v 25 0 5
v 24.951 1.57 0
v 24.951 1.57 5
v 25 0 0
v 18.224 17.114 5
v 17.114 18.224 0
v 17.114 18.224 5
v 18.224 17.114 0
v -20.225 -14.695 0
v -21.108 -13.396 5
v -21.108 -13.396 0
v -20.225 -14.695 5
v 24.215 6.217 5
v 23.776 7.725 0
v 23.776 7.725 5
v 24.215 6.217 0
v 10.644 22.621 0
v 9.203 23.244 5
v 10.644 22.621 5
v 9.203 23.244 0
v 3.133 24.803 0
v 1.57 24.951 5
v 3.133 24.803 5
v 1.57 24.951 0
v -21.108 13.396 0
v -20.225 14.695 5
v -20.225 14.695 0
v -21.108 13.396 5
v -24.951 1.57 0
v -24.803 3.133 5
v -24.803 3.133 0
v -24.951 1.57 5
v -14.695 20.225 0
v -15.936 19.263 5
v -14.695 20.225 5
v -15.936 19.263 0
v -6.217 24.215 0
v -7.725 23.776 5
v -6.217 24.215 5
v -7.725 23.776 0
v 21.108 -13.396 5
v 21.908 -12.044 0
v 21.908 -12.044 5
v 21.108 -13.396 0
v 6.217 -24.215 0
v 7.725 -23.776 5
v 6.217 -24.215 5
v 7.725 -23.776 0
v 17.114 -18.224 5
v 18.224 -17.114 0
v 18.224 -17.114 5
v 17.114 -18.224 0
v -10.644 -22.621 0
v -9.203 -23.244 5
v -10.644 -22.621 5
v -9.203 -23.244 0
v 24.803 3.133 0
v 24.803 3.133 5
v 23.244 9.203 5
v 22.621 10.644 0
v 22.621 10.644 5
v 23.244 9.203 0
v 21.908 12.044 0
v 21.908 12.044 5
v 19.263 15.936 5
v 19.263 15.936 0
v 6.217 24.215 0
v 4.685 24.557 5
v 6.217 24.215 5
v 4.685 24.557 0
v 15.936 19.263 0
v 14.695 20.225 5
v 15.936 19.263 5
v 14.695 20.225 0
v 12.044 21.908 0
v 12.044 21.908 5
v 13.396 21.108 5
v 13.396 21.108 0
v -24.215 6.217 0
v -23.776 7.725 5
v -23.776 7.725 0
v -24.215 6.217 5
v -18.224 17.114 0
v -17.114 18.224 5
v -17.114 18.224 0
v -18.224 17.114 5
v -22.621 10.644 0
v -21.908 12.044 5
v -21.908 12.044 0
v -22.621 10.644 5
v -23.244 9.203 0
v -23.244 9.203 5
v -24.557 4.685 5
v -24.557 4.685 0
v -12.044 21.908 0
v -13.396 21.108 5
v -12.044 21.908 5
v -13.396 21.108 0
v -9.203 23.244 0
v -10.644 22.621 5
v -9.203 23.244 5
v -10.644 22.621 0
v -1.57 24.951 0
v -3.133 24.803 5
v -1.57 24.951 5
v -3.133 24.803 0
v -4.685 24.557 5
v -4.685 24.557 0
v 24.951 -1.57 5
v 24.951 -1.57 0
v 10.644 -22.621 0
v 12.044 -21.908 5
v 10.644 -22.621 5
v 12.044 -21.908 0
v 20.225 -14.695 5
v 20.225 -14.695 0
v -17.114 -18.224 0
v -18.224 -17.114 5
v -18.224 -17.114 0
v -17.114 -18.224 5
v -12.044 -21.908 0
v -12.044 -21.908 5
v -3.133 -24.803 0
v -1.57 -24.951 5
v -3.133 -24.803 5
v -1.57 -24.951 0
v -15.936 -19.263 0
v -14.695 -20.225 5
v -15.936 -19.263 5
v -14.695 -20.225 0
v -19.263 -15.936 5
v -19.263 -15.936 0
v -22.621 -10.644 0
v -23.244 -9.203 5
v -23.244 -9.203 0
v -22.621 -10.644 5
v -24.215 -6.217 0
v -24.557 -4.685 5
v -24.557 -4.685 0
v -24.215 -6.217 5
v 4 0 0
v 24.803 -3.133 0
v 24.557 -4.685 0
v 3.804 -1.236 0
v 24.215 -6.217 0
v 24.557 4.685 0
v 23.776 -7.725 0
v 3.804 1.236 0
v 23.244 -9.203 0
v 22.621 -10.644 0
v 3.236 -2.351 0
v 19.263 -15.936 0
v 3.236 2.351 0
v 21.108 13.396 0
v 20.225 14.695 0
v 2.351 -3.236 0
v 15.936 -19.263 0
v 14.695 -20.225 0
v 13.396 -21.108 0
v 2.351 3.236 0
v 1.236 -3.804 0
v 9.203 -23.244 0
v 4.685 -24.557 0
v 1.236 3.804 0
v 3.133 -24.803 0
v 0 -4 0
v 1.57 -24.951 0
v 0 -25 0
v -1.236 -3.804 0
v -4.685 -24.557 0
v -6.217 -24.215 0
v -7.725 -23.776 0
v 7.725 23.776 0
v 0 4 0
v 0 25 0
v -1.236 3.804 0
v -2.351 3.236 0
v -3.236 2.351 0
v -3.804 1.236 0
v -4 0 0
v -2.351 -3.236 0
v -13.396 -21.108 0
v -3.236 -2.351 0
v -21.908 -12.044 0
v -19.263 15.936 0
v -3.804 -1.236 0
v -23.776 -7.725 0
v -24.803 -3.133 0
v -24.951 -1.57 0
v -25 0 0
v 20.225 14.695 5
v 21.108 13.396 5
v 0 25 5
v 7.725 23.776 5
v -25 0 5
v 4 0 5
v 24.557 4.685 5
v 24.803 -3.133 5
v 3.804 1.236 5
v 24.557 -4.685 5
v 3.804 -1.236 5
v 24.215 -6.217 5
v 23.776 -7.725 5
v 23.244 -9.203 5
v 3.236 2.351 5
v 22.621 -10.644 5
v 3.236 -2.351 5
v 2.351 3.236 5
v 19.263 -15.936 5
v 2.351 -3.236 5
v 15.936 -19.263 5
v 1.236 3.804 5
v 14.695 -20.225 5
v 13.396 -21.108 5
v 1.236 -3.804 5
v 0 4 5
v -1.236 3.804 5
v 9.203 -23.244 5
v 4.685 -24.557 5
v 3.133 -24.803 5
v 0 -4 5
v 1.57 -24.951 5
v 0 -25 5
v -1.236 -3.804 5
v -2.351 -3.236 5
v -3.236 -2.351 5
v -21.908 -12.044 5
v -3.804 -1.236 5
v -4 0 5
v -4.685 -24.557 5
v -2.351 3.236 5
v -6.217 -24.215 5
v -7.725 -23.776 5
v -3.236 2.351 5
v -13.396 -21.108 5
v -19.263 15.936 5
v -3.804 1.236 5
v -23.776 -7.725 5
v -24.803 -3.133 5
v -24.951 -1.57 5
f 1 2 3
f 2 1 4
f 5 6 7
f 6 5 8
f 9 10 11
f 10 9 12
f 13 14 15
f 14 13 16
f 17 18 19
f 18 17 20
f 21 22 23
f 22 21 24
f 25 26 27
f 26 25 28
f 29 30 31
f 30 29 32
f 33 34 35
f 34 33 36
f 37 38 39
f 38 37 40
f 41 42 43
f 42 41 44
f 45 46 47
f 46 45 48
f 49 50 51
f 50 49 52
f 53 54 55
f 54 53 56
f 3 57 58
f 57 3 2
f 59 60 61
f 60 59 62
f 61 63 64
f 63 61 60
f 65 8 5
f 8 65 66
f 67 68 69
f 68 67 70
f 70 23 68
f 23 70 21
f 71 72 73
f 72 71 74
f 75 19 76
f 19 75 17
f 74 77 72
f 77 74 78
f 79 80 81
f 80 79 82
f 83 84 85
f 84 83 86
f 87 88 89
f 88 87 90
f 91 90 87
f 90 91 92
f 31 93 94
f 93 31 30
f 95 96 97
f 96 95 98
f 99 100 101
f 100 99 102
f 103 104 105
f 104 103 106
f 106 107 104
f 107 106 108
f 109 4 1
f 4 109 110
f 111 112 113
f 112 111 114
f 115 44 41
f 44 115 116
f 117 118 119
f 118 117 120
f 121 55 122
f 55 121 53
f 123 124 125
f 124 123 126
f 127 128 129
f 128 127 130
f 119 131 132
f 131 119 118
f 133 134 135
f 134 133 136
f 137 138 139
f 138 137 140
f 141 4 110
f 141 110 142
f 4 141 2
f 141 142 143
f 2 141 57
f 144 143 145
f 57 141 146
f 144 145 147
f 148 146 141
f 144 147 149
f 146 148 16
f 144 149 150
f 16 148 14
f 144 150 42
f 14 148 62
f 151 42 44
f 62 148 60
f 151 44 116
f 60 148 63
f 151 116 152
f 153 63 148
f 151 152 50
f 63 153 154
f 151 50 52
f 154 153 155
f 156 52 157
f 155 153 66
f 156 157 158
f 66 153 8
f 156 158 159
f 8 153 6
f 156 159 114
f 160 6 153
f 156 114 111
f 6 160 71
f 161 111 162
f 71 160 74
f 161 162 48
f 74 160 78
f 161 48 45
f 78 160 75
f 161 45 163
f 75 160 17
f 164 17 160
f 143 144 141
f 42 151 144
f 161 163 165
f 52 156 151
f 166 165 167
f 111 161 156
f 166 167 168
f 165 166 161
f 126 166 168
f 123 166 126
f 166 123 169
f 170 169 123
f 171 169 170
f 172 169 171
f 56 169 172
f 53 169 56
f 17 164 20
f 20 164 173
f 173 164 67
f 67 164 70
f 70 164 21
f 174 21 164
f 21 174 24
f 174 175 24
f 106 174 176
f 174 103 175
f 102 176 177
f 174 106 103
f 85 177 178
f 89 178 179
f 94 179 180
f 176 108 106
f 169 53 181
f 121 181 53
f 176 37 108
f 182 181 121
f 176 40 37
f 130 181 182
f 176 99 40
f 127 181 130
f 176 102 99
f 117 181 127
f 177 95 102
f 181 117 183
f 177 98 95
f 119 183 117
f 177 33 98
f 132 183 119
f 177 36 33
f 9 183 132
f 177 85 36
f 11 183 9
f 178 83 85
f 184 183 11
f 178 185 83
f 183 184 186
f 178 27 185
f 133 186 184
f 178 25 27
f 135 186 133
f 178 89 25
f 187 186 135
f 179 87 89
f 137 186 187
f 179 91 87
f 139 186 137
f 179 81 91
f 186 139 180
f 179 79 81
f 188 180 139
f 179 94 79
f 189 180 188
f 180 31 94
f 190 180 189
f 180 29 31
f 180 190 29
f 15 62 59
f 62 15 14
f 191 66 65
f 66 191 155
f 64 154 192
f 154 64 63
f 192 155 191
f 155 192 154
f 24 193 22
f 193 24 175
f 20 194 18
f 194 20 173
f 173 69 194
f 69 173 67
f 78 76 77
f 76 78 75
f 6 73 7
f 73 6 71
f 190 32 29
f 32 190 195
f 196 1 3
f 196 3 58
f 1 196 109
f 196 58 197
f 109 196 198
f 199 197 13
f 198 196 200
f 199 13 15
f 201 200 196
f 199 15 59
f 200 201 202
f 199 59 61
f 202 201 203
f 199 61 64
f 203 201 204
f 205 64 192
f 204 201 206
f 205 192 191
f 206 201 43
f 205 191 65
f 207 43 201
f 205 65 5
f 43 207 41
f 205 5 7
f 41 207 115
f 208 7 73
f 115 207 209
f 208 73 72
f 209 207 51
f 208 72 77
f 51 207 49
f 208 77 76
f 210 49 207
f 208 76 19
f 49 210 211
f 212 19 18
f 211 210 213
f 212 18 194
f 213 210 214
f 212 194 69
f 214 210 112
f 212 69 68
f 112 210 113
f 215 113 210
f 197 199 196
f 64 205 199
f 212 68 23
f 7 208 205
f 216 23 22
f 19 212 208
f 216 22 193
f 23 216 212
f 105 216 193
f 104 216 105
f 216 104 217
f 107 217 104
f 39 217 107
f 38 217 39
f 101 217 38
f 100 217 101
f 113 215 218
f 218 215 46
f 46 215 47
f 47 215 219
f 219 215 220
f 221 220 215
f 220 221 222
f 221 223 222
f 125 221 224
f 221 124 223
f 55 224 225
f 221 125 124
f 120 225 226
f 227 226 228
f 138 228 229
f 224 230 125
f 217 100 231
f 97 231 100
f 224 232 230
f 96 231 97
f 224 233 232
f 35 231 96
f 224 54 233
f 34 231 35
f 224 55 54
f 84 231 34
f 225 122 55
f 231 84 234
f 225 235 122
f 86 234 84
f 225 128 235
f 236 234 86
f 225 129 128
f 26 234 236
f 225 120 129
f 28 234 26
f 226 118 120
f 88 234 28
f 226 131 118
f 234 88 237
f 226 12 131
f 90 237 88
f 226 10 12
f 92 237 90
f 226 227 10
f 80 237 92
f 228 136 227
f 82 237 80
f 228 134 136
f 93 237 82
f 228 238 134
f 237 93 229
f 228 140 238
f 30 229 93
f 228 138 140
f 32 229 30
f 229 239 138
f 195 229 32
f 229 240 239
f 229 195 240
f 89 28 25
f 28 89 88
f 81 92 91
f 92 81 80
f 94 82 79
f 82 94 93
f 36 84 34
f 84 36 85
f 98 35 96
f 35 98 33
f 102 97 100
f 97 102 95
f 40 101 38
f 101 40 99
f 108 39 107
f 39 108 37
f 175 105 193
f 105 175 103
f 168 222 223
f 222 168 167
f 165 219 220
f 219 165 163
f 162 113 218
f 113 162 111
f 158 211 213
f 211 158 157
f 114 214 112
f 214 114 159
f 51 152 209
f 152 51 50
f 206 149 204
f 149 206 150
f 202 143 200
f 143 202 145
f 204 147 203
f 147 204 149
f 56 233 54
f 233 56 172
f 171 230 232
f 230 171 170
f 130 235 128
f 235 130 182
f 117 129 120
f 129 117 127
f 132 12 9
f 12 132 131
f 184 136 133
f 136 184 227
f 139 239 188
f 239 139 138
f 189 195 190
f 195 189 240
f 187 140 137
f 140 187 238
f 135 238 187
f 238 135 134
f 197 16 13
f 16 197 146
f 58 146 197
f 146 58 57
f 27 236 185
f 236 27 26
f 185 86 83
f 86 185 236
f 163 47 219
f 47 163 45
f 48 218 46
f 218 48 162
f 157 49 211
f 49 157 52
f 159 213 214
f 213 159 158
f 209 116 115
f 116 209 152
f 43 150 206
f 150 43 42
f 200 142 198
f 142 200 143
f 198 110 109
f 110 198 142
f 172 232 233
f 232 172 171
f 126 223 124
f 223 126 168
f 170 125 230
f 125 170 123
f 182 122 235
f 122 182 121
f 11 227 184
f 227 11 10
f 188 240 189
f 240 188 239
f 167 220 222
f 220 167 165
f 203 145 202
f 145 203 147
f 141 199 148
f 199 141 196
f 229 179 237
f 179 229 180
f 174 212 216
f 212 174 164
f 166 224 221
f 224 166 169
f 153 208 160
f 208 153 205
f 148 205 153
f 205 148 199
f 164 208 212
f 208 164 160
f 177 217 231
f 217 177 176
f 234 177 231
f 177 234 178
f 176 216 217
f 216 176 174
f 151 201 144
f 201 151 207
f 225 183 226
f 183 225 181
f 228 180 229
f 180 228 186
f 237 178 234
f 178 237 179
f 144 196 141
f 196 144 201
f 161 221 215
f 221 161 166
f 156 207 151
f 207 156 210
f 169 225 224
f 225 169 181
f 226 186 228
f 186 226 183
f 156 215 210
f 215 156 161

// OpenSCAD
//--Rueda simple
difference(){
cylinder(r=50/2,h=5, $fn=100);

cylinder(r=8/2, h=20, $fn=20, center=true);
}
